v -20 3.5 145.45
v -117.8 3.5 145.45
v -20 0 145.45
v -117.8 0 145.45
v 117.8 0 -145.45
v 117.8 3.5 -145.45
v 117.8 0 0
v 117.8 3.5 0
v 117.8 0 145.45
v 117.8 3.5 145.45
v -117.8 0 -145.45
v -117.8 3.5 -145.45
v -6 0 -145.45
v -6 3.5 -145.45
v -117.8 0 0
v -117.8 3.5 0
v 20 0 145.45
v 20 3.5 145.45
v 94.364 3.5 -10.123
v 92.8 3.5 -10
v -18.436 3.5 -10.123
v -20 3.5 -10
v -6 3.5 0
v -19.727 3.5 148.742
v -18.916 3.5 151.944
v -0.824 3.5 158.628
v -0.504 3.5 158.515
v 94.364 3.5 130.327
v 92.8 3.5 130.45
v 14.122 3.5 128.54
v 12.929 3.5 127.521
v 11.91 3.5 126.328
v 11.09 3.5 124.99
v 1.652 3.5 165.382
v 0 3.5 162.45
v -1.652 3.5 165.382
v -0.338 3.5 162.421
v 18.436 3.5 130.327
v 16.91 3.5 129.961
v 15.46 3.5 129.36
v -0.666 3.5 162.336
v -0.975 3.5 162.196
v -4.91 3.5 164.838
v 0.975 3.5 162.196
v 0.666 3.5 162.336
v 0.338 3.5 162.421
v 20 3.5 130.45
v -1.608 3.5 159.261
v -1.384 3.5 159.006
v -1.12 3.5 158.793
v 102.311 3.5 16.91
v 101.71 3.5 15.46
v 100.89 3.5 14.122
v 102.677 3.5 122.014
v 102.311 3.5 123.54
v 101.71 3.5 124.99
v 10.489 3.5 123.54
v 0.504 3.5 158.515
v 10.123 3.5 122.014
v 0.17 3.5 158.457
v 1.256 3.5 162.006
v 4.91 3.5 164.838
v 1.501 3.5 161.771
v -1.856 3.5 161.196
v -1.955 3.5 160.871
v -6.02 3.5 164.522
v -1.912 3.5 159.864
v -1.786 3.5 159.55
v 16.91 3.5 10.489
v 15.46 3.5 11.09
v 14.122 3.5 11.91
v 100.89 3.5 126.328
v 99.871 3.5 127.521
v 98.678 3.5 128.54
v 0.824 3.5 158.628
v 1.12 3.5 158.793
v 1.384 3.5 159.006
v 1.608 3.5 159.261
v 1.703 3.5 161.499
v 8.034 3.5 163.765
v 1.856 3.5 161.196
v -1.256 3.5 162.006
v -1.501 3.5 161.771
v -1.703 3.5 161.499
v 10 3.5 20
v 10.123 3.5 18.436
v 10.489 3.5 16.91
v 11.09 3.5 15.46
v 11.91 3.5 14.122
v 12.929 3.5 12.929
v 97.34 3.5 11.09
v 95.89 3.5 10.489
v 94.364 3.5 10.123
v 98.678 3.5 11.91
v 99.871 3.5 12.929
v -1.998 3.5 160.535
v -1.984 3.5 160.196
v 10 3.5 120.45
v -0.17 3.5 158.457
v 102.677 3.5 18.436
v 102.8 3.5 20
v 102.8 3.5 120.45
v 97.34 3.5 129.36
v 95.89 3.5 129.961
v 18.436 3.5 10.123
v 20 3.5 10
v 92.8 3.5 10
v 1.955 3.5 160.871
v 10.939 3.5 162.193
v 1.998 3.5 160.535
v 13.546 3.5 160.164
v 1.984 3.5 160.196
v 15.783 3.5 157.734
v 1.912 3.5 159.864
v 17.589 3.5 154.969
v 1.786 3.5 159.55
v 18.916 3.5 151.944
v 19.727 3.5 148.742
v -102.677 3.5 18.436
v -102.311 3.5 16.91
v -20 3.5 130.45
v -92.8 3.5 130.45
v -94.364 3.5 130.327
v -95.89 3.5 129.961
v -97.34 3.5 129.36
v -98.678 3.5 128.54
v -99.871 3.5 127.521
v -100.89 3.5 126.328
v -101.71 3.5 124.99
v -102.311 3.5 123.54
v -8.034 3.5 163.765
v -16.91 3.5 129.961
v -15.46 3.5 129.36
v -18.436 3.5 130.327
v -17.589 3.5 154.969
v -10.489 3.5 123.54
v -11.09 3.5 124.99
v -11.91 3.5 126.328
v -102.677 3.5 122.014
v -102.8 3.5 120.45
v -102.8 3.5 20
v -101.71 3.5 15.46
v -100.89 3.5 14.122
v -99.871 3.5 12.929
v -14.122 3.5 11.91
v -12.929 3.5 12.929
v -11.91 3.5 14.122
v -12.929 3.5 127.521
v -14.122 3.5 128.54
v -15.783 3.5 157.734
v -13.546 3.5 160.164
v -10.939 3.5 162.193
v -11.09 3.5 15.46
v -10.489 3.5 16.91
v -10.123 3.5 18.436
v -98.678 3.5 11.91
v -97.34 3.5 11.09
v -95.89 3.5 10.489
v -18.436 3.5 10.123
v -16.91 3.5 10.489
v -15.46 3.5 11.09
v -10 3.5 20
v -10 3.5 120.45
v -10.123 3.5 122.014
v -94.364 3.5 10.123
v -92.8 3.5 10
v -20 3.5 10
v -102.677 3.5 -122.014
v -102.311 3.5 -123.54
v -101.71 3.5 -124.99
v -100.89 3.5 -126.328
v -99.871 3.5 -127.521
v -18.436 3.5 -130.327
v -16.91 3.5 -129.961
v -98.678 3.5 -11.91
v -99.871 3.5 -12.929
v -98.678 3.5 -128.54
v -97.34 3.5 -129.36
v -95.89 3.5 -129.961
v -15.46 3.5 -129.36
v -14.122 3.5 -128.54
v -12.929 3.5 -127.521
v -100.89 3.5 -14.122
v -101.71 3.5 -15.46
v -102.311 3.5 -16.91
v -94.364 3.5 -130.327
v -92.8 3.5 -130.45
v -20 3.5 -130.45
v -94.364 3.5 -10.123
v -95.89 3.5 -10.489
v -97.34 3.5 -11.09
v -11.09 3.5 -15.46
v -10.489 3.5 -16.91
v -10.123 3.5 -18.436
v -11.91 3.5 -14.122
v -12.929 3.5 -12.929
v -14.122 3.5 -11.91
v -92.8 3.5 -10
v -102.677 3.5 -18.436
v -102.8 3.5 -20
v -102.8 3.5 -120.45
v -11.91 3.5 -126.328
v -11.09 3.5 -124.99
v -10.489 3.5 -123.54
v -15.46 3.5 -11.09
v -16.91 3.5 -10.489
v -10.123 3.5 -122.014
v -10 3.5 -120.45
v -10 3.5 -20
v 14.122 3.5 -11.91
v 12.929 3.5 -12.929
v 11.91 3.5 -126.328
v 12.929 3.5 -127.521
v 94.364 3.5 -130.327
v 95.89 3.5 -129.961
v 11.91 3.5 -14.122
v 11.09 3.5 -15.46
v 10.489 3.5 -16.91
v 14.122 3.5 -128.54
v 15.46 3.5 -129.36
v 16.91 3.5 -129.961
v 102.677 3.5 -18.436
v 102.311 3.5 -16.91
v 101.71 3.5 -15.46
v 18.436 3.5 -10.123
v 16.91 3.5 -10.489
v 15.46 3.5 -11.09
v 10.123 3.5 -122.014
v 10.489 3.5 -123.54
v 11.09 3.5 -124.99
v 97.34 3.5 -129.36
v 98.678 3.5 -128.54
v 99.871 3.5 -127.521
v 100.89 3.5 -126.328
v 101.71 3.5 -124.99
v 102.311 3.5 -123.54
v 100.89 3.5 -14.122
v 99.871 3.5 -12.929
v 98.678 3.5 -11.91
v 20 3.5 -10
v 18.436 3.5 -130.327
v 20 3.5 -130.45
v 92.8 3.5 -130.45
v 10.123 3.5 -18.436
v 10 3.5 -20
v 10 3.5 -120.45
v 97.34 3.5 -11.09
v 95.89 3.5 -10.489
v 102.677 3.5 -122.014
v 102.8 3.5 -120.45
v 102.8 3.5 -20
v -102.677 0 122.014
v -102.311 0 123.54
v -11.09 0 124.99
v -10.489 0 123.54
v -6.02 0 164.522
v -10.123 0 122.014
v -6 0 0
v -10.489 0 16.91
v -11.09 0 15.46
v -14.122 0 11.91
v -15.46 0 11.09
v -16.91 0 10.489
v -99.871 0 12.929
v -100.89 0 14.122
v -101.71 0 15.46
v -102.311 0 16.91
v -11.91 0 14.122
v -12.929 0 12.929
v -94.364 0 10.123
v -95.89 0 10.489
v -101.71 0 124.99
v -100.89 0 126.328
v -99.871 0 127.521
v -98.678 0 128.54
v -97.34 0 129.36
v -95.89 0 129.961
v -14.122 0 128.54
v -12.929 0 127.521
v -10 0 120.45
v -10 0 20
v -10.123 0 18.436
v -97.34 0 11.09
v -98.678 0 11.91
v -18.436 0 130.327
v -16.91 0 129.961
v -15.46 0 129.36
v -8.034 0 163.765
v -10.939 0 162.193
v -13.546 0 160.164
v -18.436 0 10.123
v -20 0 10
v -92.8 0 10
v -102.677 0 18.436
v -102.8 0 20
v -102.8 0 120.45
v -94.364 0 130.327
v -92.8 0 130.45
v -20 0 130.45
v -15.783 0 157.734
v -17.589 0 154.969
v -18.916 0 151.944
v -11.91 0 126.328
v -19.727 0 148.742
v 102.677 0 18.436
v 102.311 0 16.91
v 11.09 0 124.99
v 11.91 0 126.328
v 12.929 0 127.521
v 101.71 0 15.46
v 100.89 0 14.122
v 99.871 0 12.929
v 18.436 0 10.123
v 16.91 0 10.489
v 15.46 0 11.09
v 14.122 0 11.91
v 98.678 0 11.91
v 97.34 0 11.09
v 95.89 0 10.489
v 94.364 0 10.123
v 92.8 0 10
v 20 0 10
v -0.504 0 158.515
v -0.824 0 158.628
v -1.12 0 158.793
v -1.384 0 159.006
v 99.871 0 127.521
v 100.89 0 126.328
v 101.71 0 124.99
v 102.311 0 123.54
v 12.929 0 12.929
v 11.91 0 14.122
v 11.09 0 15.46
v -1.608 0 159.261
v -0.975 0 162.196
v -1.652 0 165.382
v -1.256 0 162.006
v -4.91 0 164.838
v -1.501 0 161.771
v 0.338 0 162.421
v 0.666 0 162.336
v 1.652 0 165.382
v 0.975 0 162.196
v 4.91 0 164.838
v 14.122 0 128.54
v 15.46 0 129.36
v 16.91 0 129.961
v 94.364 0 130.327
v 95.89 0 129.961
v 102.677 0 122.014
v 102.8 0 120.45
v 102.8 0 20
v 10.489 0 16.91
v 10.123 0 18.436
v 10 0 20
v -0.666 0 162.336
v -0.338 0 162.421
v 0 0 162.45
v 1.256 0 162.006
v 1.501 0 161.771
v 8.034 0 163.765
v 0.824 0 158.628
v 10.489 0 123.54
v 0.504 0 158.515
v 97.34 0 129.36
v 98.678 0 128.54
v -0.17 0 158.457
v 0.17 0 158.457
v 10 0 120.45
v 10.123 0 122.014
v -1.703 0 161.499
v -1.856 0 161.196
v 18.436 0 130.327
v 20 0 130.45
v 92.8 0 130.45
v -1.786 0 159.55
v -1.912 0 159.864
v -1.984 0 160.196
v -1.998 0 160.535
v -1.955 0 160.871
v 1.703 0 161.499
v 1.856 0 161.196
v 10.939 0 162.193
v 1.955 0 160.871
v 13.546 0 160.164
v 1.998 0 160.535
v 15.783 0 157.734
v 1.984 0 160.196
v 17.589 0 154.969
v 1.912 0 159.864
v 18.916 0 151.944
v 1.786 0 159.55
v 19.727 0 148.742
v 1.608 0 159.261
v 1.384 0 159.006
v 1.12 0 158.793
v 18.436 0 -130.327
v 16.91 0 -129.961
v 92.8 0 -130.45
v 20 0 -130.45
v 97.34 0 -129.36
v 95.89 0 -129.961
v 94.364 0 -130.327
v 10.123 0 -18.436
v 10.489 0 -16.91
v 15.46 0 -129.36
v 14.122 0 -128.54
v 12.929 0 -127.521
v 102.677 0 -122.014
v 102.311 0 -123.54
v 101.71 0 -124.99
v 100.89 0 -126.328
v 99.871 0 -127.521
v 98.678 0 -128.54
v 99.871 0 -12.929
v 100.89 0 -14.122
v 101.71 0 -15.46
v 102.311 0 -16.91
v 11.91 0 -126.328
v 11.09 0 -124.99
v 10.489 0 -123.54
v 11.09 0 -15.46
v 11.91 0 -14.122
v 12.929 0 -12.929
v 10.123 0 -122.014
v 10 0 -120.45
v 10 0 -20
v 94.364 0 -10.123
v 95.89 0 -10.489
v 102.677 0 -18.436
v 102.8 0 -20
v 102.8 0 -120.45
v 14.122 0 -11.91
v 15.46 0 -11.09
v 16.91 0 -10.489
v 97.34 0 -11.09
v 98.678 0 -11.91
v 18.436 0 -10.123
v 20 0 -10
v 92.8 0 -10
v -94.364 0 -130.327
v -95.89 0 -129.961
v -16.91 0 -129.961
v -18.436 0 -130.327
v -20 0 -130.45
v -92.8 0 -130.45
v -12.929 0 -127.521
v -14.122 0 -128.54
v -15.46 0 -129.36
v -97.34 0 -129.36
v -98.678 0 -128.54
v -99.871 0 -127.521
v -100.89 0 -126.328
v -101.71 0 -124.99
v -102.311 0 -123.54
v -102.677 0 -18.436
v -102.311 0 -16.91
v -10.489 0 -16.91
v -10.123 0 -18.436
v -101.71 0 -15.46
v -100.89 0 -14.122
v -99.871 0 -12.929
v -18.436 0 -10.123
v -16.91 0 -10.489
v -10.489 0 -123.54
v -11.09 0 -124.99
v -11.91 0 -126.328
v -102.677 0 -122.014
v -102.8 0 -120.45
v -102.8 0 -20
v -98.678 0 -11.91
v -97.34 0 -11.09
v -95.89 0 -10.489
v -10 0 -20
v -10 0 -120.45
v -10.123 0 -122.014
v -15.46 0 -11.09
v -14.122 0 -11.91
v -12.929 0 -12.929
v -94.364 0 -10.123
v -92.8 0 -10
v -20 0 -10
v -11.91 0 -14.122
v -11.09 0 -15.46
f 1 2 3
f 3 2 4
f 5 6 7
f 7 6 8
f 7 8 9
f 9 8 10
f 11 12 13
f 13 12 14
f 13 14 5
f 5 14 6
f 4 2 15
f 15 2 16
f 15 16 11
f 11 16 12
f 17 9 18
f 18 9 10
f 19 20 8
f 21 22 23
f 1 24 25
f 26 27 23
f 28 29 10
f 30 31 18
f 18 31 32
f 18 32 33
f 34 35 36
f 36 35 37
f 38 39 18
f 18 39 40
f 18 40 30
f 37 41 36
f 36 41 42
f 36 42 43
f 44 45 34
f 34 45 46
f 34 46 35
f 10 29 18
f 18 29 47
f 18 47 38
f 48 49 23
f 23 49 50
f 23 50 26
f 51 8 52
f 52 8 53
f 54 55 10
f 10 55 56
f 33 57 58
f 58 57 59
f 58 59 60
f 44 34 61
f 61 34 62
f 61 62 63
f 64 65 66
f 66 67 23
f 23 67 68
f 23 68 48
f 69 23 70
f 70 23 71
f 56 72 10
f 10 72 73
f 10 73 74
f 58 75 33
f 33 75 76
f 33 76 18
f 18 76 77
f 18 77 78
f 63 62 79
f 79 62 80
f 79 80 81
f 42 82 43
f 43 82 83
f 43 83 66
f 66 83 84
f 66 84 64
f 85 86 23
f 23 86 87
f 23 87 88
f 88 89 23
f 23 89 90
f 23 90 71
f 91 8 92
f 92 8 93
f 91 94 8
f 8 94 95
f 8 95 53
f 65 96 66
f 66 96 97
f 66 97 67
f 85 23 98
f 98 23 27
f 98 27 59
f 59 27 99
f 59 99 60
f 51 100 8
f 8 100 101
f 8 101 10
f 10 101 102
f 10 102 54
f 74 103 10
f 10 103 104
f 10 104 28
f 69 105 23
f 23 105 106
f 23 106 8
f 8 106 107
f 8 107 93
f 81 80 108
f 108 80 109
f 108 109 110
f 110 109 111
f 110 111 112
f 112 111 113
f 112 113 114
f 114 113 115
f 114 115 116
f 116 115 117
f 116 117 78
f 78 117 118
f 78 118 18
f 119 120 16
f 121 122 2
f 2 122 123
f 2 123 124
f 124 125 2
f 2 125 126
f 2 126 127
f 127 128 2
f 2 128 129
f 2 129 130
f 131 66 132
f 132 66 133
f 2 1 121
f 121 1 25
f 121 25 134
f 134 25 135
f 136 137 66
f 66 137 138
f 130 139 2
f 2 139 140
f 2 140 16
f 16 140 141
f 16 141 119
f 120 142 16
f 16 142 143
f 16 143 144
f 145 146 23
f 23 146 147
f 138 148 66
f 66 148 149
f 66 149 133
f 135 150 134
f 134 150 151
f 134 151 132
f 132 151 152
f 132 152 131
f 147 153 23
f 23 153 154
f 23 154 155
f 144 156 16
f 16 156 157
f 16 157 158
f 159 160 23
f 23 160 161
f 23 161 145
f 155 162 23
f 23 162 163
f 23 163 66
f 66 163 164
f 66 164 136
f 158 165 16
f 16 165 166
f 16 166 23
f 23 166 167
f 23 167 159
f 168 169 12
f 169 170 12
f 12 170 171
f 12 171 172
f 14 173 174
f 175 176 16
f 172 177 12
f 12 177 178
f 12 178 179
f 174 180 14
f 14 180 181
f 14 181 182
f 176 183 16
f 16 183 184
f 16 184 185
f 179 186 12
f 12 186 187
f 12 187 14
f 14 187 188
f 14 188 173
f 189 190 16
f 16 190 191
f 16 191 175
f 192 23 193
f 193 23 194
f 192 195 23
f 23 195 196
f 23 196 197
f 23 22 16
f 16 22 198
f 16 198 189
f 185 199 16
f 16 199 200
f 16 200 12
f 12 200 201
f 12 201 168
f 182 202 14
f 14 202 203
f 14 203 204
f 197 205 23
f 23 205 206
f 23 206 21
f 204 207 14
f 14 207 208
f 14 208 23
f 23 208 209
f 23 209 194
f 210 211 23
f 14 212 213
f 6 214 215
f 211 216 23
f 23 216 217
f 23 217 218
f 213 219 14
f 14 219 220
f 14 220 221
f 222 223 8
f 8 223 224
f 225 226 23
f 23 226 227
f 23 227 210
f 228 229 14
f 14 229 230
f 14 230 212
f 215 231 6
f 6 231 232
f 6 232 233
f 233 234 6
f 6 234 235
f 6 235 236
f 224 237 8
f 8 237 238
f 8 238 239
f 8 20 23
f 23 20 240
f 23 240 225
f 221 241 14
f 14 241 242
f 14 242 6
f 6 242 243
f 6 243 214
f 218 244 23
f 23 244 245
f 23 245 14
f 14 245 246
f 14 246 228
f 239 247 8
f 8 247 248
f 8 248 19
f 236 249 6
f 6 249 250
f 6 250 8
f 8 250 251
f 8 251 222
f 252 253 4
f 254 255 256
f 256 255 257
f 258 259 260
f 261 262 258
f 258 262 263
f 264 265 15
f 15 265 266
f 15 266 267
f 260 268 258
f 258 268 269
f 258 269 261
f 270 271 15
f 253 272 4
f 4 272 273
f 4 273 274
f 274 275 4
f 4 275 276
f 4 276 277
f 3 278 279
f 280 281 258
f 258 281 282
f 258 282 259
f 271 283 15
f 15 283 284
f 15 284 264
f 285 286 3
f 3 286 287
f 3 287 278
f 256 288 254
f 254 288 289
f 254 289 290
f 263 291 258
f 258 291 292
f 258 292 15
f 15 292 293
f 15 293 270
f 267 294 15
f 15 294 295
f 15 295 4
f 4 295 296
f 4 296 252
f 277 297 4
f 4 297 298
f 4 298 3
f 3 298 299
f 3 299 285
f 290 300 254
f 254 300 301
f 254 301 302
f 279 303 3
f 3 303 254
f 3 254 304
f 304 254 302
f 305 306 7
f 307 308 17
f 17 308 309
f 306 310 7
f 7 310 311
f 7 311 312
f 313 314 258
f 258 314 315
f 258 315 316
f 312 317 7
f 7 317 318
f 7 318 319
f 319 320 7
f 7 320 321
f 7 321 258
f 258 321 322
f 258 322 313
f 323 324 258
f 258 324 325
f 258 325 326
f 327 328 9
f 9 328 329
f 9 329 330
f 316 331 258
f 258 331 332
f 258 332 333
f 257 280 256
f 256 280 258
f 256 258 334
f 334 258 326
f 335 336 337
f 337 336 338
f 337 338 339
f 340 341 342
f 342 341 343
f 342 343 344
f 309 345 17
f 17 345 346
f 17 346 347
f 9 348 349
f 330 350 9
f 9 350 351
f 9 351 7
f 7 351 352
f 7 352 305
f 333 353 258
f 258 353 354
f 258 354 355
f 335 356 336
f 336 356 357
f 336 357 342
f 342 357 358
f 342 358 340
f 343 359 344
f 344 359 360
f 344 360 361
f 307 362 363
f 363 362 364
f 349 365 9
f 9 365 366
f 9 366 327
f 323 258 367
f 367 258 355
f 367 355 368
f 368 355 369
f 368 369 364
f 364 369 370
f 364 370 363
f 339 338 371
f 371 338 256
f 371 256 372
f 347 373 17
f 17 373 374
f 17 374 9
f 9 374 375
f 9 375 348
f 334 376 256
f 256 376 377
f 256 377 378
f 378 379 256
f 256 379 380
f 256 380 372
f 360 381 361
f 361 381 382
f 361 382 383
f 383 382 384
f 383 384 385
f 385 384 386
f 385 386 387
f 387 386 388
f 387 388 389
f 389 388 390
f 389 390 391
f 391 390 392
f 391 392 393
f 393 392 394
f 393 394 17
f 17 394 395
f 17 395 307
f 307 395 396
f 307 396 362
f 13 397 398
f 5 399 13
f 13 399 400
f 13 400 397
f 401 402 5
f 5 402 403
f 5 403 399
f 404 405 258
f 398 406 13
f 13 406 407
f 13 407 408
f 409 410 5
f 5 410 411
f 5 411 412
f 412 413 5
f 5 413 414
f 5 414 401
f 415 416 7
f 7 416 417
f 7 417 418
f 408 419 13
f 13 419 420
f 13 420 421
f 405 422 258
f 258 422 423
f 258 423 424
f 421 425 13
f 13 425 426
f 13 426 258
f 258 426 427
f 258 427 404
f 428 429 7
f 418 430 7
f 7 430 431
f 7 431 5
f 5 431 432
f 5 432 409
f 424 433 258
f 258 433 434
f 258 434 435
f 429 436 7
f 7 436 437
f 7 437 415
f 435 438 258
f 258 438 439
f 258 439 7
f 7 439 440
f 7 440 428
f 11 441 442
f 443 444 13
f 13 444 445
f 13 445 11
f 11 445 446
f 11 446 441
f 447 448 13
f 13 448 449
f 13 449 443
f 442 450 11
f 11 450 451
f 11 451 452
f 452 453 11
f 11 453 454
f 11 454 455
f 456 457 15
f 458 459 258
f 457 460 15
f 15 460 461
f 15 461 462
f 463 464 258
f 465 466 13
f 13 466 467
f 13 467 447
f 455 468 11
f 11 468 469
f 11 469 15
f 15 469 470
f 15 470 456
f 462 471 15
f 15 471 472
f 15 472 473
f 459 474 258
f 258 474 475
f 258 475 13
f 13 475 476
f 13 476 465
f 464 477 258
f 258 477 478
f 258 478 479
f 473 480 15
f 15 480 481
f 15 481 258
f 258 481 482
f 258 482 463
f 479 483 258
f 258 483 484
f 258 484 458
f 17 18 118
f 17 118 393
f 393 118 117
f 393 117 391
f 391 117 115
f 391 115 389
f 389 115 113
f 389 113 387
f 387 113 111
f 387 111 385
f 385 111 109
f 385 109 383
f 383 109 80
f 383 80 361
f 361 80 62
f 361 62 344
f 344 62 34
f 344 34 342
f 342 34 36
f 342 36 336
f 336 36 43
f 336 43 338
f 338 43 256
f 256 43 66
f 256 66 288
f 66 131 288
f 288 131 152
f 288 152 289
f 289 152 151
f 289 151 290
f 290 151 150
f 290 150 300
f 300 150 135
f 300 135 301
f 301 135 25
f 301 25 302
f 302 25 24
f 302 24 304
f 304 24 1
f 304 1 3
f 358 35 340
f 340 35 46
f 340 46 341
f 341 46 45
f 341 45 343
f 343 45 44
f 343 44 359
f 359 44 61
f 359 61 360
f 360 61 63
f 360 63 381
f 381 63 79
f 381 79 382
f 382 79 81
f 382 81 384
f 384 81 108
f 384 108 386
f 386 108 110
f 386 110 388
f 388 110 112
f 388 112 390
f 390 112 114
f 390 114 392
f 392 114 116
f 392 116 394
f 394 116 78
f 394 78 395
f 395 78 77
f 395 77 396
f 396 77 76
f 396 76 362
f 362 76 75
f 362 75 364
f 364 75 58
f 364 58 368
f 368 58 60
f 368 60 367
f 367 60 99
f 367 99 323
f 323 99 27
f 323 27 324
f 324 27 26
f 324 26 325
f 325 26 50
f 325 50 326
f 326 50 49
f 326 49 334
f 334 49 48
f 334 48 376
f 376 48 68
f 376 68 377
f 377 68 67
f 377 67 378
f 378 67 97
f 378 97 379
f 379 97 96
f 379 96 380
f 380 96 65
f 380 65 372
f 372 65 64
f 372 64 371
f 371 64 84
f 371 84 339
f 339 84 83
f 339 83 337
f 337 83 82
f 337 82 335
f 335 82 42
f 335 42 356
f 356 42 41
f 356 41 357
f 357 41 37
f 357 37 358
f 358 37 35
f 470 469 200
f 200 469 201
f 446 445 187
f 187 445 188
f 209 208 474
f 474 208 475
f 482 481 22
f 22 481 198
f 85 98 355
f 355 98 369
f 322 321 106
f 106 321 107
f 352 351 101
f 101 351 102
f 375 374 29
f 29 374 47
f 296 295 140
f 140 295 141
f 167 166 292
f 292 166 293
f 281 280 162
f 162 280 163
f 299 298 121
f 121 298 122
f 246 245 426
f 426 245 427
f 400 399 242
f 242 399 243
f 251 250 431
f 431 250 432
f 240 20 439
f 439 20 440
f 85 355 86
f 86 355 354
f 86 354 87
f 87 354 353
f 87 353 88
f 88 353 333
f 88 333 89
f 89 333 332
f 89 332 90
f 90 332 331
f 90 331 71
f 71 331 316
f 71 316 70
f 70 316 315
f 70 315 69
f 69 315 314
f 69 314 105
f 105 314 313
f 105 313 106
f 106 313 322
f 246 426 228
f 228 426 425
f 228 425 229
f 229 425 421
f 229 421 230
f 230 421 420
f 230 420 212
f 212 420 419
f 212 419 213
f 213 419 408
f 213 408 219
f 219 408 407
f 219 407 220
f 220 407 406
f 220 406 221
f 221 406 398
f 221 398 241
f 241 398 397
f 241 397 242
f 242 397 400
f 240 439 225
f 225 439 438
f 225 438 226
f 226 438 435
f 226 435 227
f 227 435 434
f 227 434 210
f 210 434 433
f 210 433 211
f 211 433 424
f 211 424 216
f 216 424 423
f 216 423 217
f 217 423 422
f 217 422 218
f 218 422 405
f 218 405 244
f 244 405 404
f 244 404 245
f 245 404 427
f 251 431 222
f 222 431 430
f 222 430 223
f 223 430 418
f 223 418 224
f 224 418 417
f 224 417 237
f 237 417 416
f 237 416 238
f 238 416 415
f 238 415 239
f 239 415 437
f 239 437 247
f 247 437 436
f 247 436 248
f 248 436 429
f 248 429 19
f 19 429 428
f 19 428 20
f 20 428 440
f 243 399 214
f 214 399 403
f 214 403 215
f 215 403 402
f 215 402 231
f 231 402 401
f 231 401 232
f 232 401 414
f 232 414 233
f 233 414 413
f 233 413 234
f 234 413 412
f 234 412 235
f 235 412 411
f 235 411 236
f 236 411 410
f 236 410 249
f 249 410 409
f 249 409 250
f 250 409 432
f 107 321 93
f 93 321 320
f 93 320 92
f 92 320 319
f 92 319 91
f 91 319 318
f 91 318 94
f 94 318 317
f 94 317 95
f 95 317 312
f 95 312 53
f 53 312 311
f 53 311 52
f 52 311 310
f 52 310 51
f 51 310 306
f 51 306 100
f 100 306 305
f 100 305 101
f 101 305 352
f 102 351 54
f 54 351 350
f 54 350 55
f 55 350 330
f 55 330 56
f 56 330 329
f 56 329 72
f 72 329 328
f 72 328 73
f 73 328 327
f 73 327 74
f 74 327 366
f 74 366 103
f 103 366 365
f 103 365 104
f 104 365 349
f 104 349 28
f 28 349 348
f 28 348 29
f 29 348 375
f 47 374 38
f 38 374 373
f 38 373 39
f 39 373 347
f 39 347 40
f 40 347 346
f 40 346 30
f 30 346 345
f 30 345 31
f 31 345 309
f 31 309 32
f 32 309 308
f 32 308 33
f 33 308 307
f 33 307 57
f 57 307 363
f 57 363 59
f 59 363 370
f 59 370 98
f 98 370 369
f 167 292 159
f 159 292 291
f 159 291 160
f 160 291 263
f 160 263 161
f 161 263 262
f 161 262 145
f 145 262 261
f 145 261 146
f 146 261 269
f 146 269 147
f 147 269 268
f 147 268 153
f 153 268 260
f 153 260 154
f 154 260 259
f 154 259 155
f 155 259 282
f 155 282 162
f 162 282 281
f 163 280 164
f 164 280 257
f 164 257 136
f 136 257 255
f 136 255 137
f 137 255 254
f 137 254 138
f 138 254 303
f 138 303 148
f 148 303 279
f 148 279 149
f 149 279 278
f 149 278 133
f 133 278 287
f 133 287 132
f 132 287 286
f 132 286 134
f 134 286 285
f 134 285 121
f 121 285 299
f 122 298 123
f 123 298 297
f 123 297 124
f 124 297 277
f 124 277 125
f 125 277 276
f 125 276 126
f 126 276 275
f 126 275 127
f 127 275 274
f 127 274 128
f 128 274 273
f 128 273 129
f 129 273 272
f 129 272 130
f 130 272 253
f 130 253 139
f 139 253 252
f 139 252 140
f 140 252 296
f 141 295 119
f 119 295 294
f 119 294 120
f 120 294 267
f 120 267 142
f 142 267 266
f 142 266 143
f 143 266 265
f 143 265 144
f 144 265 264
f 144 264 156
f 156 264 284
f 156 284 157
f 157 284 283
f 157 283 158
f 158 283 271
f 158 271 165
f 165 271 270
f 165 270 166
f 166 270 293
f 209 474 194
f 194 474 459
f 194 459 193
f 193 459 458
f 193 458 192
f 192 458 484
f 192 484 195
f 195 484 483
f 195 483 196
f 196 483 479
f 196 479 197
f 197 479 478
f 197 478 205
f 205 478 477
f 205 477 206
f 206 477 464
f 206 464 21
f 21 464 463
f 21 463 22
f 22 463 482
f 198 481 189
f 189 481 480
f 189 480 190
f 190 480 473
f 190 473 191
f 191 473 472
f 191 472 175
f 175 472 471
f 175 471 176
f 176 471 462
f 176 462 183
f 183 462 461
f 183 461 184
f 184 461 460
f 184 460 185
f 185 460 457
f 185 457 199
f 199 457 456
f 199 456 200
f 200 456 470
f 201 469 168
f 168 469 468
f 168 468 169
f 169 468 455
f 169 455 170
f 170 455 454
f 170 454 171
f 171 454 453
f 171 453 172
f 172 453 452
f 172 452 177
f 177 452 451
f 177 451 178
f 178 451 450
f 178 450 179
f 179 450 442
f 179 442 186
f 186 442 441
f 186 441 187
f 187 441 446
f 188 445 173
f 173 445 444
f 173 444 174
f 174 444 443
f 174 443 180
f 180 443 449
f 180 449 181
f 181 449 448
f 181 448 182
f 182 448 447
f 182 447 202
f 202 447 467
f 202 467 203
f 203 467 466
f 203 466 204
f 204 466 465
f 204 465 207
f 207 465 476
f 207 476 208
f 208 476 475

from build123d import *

# Parameters (mm, degrees)
SKETCH1_W           = 235.6
SKETCH1_H           = 290.9
BOSS_EXTRUDE1_DEPTH = 3.5
BOSS_EXTRUDE2_DEPTH = 3.5
SKETCH4_R           = 2
CUT_EXTRUDE1_DEPTH  = 3.5
SKETCH5_W           = 92.8
SKETCH5_H           = 120.45
CUT_EXTRUDE2_DEPTH  = 10
FILLET1_R           = 10


with BuildPart() as part:
    # Sketch1 → Boss-Extrude1 (new body)
    with BuildSketch(Plane(origin=(0, 0, 0), x_dir=(1, 0, 0), z_dir=(0, 1, 0))):
        Rectangle(SKETCH1_W, SKETCH1_H)
    extrude(amount=BOSS_EXTRUDE1_DEPTH)

    # Sketch3 → Boss-Extrude2 (add)
    with BuildSketch(Plane(origin=(0, 3.5, 0), x_dir=(1, 0, 0), z_dir=(0, 1, 0))):
        with BuildLine():
            Line((-20, -145.45), (20, -145.45))
            ThreePointArc((20, -145.45), (0, -165.45), (-20, -145.45))
        make_face()
    extrude(amount=-BOSS_EXTRUDE2_DEPTH)

    # Sketch4 → Cut-Extrude1 (cut)
    with BuildSketch(Plane(origin=(0, 3.5, 0), x_dir=(1, 0, 0), z_dir=(0, 1, 0))):
        with Locations(Location((0, -160.45, 0), (0, 0, 270))):
            Circle(SKETCH4_R)
    extrude(amount=-CUT_EXTRUDE1_DEPTH, mode=Mode.SUBTRACT)

    # Sketch5 → Cut-Extrude2 (cut)
    with BuildSketch(Plane(origin=(0, 3.5, 0), x_dir=(1, 0, 0), z_dir=(0, 1, 0))):
        with Locations((-56.4, 70.225)):
            Rectangle(SKETCH5_W, SKETCH5_H)
        with Locations((56.4, 70.225)):
            Rectangle(SKETCH5_W, SKETCH5_H)
        with Locations((-56.4, -70.225)):
            Rectangle(SKETCH5_W, SKETCH5_H)
        with Locations((56.4, -70.225)):
            Rectangle(SKETCH5_W, SKETCH5_H)
    extrude(amount=-CUT_EXTRUDE2_DEPTH, mode=Mode.SUBTRACT)

    # Fillet1
    fillet1_edges = [part.edges().sort_by_distance(p)[0] for p in [
        (10, 1.75, -10),
        (10, 1.75, -130.45),
        (102.8, 1.75, -130.45),
        (102.8, 1.75, -10),
        (-102.8, 1.75, 130.45),
        (-102.8, 1.75, 10),
        (-10, 1.75, 10),
        (-10, 1.75, 130.45),
        (10, 1.75, 130.45),
        (10, 1.75, 10),
        (102.8, 1.75, 10),
        (102.8, 1.75, 130.45),
        (-102.8, 1.75, -10),
        (-102.8, 1.75, -130.45),
        (-10, 1.75, -130.45),
        (-10, 1.75, -10),
    ]]
    fillet(fillet1_edges, radius=FILLET1_R)


solid = part.part
